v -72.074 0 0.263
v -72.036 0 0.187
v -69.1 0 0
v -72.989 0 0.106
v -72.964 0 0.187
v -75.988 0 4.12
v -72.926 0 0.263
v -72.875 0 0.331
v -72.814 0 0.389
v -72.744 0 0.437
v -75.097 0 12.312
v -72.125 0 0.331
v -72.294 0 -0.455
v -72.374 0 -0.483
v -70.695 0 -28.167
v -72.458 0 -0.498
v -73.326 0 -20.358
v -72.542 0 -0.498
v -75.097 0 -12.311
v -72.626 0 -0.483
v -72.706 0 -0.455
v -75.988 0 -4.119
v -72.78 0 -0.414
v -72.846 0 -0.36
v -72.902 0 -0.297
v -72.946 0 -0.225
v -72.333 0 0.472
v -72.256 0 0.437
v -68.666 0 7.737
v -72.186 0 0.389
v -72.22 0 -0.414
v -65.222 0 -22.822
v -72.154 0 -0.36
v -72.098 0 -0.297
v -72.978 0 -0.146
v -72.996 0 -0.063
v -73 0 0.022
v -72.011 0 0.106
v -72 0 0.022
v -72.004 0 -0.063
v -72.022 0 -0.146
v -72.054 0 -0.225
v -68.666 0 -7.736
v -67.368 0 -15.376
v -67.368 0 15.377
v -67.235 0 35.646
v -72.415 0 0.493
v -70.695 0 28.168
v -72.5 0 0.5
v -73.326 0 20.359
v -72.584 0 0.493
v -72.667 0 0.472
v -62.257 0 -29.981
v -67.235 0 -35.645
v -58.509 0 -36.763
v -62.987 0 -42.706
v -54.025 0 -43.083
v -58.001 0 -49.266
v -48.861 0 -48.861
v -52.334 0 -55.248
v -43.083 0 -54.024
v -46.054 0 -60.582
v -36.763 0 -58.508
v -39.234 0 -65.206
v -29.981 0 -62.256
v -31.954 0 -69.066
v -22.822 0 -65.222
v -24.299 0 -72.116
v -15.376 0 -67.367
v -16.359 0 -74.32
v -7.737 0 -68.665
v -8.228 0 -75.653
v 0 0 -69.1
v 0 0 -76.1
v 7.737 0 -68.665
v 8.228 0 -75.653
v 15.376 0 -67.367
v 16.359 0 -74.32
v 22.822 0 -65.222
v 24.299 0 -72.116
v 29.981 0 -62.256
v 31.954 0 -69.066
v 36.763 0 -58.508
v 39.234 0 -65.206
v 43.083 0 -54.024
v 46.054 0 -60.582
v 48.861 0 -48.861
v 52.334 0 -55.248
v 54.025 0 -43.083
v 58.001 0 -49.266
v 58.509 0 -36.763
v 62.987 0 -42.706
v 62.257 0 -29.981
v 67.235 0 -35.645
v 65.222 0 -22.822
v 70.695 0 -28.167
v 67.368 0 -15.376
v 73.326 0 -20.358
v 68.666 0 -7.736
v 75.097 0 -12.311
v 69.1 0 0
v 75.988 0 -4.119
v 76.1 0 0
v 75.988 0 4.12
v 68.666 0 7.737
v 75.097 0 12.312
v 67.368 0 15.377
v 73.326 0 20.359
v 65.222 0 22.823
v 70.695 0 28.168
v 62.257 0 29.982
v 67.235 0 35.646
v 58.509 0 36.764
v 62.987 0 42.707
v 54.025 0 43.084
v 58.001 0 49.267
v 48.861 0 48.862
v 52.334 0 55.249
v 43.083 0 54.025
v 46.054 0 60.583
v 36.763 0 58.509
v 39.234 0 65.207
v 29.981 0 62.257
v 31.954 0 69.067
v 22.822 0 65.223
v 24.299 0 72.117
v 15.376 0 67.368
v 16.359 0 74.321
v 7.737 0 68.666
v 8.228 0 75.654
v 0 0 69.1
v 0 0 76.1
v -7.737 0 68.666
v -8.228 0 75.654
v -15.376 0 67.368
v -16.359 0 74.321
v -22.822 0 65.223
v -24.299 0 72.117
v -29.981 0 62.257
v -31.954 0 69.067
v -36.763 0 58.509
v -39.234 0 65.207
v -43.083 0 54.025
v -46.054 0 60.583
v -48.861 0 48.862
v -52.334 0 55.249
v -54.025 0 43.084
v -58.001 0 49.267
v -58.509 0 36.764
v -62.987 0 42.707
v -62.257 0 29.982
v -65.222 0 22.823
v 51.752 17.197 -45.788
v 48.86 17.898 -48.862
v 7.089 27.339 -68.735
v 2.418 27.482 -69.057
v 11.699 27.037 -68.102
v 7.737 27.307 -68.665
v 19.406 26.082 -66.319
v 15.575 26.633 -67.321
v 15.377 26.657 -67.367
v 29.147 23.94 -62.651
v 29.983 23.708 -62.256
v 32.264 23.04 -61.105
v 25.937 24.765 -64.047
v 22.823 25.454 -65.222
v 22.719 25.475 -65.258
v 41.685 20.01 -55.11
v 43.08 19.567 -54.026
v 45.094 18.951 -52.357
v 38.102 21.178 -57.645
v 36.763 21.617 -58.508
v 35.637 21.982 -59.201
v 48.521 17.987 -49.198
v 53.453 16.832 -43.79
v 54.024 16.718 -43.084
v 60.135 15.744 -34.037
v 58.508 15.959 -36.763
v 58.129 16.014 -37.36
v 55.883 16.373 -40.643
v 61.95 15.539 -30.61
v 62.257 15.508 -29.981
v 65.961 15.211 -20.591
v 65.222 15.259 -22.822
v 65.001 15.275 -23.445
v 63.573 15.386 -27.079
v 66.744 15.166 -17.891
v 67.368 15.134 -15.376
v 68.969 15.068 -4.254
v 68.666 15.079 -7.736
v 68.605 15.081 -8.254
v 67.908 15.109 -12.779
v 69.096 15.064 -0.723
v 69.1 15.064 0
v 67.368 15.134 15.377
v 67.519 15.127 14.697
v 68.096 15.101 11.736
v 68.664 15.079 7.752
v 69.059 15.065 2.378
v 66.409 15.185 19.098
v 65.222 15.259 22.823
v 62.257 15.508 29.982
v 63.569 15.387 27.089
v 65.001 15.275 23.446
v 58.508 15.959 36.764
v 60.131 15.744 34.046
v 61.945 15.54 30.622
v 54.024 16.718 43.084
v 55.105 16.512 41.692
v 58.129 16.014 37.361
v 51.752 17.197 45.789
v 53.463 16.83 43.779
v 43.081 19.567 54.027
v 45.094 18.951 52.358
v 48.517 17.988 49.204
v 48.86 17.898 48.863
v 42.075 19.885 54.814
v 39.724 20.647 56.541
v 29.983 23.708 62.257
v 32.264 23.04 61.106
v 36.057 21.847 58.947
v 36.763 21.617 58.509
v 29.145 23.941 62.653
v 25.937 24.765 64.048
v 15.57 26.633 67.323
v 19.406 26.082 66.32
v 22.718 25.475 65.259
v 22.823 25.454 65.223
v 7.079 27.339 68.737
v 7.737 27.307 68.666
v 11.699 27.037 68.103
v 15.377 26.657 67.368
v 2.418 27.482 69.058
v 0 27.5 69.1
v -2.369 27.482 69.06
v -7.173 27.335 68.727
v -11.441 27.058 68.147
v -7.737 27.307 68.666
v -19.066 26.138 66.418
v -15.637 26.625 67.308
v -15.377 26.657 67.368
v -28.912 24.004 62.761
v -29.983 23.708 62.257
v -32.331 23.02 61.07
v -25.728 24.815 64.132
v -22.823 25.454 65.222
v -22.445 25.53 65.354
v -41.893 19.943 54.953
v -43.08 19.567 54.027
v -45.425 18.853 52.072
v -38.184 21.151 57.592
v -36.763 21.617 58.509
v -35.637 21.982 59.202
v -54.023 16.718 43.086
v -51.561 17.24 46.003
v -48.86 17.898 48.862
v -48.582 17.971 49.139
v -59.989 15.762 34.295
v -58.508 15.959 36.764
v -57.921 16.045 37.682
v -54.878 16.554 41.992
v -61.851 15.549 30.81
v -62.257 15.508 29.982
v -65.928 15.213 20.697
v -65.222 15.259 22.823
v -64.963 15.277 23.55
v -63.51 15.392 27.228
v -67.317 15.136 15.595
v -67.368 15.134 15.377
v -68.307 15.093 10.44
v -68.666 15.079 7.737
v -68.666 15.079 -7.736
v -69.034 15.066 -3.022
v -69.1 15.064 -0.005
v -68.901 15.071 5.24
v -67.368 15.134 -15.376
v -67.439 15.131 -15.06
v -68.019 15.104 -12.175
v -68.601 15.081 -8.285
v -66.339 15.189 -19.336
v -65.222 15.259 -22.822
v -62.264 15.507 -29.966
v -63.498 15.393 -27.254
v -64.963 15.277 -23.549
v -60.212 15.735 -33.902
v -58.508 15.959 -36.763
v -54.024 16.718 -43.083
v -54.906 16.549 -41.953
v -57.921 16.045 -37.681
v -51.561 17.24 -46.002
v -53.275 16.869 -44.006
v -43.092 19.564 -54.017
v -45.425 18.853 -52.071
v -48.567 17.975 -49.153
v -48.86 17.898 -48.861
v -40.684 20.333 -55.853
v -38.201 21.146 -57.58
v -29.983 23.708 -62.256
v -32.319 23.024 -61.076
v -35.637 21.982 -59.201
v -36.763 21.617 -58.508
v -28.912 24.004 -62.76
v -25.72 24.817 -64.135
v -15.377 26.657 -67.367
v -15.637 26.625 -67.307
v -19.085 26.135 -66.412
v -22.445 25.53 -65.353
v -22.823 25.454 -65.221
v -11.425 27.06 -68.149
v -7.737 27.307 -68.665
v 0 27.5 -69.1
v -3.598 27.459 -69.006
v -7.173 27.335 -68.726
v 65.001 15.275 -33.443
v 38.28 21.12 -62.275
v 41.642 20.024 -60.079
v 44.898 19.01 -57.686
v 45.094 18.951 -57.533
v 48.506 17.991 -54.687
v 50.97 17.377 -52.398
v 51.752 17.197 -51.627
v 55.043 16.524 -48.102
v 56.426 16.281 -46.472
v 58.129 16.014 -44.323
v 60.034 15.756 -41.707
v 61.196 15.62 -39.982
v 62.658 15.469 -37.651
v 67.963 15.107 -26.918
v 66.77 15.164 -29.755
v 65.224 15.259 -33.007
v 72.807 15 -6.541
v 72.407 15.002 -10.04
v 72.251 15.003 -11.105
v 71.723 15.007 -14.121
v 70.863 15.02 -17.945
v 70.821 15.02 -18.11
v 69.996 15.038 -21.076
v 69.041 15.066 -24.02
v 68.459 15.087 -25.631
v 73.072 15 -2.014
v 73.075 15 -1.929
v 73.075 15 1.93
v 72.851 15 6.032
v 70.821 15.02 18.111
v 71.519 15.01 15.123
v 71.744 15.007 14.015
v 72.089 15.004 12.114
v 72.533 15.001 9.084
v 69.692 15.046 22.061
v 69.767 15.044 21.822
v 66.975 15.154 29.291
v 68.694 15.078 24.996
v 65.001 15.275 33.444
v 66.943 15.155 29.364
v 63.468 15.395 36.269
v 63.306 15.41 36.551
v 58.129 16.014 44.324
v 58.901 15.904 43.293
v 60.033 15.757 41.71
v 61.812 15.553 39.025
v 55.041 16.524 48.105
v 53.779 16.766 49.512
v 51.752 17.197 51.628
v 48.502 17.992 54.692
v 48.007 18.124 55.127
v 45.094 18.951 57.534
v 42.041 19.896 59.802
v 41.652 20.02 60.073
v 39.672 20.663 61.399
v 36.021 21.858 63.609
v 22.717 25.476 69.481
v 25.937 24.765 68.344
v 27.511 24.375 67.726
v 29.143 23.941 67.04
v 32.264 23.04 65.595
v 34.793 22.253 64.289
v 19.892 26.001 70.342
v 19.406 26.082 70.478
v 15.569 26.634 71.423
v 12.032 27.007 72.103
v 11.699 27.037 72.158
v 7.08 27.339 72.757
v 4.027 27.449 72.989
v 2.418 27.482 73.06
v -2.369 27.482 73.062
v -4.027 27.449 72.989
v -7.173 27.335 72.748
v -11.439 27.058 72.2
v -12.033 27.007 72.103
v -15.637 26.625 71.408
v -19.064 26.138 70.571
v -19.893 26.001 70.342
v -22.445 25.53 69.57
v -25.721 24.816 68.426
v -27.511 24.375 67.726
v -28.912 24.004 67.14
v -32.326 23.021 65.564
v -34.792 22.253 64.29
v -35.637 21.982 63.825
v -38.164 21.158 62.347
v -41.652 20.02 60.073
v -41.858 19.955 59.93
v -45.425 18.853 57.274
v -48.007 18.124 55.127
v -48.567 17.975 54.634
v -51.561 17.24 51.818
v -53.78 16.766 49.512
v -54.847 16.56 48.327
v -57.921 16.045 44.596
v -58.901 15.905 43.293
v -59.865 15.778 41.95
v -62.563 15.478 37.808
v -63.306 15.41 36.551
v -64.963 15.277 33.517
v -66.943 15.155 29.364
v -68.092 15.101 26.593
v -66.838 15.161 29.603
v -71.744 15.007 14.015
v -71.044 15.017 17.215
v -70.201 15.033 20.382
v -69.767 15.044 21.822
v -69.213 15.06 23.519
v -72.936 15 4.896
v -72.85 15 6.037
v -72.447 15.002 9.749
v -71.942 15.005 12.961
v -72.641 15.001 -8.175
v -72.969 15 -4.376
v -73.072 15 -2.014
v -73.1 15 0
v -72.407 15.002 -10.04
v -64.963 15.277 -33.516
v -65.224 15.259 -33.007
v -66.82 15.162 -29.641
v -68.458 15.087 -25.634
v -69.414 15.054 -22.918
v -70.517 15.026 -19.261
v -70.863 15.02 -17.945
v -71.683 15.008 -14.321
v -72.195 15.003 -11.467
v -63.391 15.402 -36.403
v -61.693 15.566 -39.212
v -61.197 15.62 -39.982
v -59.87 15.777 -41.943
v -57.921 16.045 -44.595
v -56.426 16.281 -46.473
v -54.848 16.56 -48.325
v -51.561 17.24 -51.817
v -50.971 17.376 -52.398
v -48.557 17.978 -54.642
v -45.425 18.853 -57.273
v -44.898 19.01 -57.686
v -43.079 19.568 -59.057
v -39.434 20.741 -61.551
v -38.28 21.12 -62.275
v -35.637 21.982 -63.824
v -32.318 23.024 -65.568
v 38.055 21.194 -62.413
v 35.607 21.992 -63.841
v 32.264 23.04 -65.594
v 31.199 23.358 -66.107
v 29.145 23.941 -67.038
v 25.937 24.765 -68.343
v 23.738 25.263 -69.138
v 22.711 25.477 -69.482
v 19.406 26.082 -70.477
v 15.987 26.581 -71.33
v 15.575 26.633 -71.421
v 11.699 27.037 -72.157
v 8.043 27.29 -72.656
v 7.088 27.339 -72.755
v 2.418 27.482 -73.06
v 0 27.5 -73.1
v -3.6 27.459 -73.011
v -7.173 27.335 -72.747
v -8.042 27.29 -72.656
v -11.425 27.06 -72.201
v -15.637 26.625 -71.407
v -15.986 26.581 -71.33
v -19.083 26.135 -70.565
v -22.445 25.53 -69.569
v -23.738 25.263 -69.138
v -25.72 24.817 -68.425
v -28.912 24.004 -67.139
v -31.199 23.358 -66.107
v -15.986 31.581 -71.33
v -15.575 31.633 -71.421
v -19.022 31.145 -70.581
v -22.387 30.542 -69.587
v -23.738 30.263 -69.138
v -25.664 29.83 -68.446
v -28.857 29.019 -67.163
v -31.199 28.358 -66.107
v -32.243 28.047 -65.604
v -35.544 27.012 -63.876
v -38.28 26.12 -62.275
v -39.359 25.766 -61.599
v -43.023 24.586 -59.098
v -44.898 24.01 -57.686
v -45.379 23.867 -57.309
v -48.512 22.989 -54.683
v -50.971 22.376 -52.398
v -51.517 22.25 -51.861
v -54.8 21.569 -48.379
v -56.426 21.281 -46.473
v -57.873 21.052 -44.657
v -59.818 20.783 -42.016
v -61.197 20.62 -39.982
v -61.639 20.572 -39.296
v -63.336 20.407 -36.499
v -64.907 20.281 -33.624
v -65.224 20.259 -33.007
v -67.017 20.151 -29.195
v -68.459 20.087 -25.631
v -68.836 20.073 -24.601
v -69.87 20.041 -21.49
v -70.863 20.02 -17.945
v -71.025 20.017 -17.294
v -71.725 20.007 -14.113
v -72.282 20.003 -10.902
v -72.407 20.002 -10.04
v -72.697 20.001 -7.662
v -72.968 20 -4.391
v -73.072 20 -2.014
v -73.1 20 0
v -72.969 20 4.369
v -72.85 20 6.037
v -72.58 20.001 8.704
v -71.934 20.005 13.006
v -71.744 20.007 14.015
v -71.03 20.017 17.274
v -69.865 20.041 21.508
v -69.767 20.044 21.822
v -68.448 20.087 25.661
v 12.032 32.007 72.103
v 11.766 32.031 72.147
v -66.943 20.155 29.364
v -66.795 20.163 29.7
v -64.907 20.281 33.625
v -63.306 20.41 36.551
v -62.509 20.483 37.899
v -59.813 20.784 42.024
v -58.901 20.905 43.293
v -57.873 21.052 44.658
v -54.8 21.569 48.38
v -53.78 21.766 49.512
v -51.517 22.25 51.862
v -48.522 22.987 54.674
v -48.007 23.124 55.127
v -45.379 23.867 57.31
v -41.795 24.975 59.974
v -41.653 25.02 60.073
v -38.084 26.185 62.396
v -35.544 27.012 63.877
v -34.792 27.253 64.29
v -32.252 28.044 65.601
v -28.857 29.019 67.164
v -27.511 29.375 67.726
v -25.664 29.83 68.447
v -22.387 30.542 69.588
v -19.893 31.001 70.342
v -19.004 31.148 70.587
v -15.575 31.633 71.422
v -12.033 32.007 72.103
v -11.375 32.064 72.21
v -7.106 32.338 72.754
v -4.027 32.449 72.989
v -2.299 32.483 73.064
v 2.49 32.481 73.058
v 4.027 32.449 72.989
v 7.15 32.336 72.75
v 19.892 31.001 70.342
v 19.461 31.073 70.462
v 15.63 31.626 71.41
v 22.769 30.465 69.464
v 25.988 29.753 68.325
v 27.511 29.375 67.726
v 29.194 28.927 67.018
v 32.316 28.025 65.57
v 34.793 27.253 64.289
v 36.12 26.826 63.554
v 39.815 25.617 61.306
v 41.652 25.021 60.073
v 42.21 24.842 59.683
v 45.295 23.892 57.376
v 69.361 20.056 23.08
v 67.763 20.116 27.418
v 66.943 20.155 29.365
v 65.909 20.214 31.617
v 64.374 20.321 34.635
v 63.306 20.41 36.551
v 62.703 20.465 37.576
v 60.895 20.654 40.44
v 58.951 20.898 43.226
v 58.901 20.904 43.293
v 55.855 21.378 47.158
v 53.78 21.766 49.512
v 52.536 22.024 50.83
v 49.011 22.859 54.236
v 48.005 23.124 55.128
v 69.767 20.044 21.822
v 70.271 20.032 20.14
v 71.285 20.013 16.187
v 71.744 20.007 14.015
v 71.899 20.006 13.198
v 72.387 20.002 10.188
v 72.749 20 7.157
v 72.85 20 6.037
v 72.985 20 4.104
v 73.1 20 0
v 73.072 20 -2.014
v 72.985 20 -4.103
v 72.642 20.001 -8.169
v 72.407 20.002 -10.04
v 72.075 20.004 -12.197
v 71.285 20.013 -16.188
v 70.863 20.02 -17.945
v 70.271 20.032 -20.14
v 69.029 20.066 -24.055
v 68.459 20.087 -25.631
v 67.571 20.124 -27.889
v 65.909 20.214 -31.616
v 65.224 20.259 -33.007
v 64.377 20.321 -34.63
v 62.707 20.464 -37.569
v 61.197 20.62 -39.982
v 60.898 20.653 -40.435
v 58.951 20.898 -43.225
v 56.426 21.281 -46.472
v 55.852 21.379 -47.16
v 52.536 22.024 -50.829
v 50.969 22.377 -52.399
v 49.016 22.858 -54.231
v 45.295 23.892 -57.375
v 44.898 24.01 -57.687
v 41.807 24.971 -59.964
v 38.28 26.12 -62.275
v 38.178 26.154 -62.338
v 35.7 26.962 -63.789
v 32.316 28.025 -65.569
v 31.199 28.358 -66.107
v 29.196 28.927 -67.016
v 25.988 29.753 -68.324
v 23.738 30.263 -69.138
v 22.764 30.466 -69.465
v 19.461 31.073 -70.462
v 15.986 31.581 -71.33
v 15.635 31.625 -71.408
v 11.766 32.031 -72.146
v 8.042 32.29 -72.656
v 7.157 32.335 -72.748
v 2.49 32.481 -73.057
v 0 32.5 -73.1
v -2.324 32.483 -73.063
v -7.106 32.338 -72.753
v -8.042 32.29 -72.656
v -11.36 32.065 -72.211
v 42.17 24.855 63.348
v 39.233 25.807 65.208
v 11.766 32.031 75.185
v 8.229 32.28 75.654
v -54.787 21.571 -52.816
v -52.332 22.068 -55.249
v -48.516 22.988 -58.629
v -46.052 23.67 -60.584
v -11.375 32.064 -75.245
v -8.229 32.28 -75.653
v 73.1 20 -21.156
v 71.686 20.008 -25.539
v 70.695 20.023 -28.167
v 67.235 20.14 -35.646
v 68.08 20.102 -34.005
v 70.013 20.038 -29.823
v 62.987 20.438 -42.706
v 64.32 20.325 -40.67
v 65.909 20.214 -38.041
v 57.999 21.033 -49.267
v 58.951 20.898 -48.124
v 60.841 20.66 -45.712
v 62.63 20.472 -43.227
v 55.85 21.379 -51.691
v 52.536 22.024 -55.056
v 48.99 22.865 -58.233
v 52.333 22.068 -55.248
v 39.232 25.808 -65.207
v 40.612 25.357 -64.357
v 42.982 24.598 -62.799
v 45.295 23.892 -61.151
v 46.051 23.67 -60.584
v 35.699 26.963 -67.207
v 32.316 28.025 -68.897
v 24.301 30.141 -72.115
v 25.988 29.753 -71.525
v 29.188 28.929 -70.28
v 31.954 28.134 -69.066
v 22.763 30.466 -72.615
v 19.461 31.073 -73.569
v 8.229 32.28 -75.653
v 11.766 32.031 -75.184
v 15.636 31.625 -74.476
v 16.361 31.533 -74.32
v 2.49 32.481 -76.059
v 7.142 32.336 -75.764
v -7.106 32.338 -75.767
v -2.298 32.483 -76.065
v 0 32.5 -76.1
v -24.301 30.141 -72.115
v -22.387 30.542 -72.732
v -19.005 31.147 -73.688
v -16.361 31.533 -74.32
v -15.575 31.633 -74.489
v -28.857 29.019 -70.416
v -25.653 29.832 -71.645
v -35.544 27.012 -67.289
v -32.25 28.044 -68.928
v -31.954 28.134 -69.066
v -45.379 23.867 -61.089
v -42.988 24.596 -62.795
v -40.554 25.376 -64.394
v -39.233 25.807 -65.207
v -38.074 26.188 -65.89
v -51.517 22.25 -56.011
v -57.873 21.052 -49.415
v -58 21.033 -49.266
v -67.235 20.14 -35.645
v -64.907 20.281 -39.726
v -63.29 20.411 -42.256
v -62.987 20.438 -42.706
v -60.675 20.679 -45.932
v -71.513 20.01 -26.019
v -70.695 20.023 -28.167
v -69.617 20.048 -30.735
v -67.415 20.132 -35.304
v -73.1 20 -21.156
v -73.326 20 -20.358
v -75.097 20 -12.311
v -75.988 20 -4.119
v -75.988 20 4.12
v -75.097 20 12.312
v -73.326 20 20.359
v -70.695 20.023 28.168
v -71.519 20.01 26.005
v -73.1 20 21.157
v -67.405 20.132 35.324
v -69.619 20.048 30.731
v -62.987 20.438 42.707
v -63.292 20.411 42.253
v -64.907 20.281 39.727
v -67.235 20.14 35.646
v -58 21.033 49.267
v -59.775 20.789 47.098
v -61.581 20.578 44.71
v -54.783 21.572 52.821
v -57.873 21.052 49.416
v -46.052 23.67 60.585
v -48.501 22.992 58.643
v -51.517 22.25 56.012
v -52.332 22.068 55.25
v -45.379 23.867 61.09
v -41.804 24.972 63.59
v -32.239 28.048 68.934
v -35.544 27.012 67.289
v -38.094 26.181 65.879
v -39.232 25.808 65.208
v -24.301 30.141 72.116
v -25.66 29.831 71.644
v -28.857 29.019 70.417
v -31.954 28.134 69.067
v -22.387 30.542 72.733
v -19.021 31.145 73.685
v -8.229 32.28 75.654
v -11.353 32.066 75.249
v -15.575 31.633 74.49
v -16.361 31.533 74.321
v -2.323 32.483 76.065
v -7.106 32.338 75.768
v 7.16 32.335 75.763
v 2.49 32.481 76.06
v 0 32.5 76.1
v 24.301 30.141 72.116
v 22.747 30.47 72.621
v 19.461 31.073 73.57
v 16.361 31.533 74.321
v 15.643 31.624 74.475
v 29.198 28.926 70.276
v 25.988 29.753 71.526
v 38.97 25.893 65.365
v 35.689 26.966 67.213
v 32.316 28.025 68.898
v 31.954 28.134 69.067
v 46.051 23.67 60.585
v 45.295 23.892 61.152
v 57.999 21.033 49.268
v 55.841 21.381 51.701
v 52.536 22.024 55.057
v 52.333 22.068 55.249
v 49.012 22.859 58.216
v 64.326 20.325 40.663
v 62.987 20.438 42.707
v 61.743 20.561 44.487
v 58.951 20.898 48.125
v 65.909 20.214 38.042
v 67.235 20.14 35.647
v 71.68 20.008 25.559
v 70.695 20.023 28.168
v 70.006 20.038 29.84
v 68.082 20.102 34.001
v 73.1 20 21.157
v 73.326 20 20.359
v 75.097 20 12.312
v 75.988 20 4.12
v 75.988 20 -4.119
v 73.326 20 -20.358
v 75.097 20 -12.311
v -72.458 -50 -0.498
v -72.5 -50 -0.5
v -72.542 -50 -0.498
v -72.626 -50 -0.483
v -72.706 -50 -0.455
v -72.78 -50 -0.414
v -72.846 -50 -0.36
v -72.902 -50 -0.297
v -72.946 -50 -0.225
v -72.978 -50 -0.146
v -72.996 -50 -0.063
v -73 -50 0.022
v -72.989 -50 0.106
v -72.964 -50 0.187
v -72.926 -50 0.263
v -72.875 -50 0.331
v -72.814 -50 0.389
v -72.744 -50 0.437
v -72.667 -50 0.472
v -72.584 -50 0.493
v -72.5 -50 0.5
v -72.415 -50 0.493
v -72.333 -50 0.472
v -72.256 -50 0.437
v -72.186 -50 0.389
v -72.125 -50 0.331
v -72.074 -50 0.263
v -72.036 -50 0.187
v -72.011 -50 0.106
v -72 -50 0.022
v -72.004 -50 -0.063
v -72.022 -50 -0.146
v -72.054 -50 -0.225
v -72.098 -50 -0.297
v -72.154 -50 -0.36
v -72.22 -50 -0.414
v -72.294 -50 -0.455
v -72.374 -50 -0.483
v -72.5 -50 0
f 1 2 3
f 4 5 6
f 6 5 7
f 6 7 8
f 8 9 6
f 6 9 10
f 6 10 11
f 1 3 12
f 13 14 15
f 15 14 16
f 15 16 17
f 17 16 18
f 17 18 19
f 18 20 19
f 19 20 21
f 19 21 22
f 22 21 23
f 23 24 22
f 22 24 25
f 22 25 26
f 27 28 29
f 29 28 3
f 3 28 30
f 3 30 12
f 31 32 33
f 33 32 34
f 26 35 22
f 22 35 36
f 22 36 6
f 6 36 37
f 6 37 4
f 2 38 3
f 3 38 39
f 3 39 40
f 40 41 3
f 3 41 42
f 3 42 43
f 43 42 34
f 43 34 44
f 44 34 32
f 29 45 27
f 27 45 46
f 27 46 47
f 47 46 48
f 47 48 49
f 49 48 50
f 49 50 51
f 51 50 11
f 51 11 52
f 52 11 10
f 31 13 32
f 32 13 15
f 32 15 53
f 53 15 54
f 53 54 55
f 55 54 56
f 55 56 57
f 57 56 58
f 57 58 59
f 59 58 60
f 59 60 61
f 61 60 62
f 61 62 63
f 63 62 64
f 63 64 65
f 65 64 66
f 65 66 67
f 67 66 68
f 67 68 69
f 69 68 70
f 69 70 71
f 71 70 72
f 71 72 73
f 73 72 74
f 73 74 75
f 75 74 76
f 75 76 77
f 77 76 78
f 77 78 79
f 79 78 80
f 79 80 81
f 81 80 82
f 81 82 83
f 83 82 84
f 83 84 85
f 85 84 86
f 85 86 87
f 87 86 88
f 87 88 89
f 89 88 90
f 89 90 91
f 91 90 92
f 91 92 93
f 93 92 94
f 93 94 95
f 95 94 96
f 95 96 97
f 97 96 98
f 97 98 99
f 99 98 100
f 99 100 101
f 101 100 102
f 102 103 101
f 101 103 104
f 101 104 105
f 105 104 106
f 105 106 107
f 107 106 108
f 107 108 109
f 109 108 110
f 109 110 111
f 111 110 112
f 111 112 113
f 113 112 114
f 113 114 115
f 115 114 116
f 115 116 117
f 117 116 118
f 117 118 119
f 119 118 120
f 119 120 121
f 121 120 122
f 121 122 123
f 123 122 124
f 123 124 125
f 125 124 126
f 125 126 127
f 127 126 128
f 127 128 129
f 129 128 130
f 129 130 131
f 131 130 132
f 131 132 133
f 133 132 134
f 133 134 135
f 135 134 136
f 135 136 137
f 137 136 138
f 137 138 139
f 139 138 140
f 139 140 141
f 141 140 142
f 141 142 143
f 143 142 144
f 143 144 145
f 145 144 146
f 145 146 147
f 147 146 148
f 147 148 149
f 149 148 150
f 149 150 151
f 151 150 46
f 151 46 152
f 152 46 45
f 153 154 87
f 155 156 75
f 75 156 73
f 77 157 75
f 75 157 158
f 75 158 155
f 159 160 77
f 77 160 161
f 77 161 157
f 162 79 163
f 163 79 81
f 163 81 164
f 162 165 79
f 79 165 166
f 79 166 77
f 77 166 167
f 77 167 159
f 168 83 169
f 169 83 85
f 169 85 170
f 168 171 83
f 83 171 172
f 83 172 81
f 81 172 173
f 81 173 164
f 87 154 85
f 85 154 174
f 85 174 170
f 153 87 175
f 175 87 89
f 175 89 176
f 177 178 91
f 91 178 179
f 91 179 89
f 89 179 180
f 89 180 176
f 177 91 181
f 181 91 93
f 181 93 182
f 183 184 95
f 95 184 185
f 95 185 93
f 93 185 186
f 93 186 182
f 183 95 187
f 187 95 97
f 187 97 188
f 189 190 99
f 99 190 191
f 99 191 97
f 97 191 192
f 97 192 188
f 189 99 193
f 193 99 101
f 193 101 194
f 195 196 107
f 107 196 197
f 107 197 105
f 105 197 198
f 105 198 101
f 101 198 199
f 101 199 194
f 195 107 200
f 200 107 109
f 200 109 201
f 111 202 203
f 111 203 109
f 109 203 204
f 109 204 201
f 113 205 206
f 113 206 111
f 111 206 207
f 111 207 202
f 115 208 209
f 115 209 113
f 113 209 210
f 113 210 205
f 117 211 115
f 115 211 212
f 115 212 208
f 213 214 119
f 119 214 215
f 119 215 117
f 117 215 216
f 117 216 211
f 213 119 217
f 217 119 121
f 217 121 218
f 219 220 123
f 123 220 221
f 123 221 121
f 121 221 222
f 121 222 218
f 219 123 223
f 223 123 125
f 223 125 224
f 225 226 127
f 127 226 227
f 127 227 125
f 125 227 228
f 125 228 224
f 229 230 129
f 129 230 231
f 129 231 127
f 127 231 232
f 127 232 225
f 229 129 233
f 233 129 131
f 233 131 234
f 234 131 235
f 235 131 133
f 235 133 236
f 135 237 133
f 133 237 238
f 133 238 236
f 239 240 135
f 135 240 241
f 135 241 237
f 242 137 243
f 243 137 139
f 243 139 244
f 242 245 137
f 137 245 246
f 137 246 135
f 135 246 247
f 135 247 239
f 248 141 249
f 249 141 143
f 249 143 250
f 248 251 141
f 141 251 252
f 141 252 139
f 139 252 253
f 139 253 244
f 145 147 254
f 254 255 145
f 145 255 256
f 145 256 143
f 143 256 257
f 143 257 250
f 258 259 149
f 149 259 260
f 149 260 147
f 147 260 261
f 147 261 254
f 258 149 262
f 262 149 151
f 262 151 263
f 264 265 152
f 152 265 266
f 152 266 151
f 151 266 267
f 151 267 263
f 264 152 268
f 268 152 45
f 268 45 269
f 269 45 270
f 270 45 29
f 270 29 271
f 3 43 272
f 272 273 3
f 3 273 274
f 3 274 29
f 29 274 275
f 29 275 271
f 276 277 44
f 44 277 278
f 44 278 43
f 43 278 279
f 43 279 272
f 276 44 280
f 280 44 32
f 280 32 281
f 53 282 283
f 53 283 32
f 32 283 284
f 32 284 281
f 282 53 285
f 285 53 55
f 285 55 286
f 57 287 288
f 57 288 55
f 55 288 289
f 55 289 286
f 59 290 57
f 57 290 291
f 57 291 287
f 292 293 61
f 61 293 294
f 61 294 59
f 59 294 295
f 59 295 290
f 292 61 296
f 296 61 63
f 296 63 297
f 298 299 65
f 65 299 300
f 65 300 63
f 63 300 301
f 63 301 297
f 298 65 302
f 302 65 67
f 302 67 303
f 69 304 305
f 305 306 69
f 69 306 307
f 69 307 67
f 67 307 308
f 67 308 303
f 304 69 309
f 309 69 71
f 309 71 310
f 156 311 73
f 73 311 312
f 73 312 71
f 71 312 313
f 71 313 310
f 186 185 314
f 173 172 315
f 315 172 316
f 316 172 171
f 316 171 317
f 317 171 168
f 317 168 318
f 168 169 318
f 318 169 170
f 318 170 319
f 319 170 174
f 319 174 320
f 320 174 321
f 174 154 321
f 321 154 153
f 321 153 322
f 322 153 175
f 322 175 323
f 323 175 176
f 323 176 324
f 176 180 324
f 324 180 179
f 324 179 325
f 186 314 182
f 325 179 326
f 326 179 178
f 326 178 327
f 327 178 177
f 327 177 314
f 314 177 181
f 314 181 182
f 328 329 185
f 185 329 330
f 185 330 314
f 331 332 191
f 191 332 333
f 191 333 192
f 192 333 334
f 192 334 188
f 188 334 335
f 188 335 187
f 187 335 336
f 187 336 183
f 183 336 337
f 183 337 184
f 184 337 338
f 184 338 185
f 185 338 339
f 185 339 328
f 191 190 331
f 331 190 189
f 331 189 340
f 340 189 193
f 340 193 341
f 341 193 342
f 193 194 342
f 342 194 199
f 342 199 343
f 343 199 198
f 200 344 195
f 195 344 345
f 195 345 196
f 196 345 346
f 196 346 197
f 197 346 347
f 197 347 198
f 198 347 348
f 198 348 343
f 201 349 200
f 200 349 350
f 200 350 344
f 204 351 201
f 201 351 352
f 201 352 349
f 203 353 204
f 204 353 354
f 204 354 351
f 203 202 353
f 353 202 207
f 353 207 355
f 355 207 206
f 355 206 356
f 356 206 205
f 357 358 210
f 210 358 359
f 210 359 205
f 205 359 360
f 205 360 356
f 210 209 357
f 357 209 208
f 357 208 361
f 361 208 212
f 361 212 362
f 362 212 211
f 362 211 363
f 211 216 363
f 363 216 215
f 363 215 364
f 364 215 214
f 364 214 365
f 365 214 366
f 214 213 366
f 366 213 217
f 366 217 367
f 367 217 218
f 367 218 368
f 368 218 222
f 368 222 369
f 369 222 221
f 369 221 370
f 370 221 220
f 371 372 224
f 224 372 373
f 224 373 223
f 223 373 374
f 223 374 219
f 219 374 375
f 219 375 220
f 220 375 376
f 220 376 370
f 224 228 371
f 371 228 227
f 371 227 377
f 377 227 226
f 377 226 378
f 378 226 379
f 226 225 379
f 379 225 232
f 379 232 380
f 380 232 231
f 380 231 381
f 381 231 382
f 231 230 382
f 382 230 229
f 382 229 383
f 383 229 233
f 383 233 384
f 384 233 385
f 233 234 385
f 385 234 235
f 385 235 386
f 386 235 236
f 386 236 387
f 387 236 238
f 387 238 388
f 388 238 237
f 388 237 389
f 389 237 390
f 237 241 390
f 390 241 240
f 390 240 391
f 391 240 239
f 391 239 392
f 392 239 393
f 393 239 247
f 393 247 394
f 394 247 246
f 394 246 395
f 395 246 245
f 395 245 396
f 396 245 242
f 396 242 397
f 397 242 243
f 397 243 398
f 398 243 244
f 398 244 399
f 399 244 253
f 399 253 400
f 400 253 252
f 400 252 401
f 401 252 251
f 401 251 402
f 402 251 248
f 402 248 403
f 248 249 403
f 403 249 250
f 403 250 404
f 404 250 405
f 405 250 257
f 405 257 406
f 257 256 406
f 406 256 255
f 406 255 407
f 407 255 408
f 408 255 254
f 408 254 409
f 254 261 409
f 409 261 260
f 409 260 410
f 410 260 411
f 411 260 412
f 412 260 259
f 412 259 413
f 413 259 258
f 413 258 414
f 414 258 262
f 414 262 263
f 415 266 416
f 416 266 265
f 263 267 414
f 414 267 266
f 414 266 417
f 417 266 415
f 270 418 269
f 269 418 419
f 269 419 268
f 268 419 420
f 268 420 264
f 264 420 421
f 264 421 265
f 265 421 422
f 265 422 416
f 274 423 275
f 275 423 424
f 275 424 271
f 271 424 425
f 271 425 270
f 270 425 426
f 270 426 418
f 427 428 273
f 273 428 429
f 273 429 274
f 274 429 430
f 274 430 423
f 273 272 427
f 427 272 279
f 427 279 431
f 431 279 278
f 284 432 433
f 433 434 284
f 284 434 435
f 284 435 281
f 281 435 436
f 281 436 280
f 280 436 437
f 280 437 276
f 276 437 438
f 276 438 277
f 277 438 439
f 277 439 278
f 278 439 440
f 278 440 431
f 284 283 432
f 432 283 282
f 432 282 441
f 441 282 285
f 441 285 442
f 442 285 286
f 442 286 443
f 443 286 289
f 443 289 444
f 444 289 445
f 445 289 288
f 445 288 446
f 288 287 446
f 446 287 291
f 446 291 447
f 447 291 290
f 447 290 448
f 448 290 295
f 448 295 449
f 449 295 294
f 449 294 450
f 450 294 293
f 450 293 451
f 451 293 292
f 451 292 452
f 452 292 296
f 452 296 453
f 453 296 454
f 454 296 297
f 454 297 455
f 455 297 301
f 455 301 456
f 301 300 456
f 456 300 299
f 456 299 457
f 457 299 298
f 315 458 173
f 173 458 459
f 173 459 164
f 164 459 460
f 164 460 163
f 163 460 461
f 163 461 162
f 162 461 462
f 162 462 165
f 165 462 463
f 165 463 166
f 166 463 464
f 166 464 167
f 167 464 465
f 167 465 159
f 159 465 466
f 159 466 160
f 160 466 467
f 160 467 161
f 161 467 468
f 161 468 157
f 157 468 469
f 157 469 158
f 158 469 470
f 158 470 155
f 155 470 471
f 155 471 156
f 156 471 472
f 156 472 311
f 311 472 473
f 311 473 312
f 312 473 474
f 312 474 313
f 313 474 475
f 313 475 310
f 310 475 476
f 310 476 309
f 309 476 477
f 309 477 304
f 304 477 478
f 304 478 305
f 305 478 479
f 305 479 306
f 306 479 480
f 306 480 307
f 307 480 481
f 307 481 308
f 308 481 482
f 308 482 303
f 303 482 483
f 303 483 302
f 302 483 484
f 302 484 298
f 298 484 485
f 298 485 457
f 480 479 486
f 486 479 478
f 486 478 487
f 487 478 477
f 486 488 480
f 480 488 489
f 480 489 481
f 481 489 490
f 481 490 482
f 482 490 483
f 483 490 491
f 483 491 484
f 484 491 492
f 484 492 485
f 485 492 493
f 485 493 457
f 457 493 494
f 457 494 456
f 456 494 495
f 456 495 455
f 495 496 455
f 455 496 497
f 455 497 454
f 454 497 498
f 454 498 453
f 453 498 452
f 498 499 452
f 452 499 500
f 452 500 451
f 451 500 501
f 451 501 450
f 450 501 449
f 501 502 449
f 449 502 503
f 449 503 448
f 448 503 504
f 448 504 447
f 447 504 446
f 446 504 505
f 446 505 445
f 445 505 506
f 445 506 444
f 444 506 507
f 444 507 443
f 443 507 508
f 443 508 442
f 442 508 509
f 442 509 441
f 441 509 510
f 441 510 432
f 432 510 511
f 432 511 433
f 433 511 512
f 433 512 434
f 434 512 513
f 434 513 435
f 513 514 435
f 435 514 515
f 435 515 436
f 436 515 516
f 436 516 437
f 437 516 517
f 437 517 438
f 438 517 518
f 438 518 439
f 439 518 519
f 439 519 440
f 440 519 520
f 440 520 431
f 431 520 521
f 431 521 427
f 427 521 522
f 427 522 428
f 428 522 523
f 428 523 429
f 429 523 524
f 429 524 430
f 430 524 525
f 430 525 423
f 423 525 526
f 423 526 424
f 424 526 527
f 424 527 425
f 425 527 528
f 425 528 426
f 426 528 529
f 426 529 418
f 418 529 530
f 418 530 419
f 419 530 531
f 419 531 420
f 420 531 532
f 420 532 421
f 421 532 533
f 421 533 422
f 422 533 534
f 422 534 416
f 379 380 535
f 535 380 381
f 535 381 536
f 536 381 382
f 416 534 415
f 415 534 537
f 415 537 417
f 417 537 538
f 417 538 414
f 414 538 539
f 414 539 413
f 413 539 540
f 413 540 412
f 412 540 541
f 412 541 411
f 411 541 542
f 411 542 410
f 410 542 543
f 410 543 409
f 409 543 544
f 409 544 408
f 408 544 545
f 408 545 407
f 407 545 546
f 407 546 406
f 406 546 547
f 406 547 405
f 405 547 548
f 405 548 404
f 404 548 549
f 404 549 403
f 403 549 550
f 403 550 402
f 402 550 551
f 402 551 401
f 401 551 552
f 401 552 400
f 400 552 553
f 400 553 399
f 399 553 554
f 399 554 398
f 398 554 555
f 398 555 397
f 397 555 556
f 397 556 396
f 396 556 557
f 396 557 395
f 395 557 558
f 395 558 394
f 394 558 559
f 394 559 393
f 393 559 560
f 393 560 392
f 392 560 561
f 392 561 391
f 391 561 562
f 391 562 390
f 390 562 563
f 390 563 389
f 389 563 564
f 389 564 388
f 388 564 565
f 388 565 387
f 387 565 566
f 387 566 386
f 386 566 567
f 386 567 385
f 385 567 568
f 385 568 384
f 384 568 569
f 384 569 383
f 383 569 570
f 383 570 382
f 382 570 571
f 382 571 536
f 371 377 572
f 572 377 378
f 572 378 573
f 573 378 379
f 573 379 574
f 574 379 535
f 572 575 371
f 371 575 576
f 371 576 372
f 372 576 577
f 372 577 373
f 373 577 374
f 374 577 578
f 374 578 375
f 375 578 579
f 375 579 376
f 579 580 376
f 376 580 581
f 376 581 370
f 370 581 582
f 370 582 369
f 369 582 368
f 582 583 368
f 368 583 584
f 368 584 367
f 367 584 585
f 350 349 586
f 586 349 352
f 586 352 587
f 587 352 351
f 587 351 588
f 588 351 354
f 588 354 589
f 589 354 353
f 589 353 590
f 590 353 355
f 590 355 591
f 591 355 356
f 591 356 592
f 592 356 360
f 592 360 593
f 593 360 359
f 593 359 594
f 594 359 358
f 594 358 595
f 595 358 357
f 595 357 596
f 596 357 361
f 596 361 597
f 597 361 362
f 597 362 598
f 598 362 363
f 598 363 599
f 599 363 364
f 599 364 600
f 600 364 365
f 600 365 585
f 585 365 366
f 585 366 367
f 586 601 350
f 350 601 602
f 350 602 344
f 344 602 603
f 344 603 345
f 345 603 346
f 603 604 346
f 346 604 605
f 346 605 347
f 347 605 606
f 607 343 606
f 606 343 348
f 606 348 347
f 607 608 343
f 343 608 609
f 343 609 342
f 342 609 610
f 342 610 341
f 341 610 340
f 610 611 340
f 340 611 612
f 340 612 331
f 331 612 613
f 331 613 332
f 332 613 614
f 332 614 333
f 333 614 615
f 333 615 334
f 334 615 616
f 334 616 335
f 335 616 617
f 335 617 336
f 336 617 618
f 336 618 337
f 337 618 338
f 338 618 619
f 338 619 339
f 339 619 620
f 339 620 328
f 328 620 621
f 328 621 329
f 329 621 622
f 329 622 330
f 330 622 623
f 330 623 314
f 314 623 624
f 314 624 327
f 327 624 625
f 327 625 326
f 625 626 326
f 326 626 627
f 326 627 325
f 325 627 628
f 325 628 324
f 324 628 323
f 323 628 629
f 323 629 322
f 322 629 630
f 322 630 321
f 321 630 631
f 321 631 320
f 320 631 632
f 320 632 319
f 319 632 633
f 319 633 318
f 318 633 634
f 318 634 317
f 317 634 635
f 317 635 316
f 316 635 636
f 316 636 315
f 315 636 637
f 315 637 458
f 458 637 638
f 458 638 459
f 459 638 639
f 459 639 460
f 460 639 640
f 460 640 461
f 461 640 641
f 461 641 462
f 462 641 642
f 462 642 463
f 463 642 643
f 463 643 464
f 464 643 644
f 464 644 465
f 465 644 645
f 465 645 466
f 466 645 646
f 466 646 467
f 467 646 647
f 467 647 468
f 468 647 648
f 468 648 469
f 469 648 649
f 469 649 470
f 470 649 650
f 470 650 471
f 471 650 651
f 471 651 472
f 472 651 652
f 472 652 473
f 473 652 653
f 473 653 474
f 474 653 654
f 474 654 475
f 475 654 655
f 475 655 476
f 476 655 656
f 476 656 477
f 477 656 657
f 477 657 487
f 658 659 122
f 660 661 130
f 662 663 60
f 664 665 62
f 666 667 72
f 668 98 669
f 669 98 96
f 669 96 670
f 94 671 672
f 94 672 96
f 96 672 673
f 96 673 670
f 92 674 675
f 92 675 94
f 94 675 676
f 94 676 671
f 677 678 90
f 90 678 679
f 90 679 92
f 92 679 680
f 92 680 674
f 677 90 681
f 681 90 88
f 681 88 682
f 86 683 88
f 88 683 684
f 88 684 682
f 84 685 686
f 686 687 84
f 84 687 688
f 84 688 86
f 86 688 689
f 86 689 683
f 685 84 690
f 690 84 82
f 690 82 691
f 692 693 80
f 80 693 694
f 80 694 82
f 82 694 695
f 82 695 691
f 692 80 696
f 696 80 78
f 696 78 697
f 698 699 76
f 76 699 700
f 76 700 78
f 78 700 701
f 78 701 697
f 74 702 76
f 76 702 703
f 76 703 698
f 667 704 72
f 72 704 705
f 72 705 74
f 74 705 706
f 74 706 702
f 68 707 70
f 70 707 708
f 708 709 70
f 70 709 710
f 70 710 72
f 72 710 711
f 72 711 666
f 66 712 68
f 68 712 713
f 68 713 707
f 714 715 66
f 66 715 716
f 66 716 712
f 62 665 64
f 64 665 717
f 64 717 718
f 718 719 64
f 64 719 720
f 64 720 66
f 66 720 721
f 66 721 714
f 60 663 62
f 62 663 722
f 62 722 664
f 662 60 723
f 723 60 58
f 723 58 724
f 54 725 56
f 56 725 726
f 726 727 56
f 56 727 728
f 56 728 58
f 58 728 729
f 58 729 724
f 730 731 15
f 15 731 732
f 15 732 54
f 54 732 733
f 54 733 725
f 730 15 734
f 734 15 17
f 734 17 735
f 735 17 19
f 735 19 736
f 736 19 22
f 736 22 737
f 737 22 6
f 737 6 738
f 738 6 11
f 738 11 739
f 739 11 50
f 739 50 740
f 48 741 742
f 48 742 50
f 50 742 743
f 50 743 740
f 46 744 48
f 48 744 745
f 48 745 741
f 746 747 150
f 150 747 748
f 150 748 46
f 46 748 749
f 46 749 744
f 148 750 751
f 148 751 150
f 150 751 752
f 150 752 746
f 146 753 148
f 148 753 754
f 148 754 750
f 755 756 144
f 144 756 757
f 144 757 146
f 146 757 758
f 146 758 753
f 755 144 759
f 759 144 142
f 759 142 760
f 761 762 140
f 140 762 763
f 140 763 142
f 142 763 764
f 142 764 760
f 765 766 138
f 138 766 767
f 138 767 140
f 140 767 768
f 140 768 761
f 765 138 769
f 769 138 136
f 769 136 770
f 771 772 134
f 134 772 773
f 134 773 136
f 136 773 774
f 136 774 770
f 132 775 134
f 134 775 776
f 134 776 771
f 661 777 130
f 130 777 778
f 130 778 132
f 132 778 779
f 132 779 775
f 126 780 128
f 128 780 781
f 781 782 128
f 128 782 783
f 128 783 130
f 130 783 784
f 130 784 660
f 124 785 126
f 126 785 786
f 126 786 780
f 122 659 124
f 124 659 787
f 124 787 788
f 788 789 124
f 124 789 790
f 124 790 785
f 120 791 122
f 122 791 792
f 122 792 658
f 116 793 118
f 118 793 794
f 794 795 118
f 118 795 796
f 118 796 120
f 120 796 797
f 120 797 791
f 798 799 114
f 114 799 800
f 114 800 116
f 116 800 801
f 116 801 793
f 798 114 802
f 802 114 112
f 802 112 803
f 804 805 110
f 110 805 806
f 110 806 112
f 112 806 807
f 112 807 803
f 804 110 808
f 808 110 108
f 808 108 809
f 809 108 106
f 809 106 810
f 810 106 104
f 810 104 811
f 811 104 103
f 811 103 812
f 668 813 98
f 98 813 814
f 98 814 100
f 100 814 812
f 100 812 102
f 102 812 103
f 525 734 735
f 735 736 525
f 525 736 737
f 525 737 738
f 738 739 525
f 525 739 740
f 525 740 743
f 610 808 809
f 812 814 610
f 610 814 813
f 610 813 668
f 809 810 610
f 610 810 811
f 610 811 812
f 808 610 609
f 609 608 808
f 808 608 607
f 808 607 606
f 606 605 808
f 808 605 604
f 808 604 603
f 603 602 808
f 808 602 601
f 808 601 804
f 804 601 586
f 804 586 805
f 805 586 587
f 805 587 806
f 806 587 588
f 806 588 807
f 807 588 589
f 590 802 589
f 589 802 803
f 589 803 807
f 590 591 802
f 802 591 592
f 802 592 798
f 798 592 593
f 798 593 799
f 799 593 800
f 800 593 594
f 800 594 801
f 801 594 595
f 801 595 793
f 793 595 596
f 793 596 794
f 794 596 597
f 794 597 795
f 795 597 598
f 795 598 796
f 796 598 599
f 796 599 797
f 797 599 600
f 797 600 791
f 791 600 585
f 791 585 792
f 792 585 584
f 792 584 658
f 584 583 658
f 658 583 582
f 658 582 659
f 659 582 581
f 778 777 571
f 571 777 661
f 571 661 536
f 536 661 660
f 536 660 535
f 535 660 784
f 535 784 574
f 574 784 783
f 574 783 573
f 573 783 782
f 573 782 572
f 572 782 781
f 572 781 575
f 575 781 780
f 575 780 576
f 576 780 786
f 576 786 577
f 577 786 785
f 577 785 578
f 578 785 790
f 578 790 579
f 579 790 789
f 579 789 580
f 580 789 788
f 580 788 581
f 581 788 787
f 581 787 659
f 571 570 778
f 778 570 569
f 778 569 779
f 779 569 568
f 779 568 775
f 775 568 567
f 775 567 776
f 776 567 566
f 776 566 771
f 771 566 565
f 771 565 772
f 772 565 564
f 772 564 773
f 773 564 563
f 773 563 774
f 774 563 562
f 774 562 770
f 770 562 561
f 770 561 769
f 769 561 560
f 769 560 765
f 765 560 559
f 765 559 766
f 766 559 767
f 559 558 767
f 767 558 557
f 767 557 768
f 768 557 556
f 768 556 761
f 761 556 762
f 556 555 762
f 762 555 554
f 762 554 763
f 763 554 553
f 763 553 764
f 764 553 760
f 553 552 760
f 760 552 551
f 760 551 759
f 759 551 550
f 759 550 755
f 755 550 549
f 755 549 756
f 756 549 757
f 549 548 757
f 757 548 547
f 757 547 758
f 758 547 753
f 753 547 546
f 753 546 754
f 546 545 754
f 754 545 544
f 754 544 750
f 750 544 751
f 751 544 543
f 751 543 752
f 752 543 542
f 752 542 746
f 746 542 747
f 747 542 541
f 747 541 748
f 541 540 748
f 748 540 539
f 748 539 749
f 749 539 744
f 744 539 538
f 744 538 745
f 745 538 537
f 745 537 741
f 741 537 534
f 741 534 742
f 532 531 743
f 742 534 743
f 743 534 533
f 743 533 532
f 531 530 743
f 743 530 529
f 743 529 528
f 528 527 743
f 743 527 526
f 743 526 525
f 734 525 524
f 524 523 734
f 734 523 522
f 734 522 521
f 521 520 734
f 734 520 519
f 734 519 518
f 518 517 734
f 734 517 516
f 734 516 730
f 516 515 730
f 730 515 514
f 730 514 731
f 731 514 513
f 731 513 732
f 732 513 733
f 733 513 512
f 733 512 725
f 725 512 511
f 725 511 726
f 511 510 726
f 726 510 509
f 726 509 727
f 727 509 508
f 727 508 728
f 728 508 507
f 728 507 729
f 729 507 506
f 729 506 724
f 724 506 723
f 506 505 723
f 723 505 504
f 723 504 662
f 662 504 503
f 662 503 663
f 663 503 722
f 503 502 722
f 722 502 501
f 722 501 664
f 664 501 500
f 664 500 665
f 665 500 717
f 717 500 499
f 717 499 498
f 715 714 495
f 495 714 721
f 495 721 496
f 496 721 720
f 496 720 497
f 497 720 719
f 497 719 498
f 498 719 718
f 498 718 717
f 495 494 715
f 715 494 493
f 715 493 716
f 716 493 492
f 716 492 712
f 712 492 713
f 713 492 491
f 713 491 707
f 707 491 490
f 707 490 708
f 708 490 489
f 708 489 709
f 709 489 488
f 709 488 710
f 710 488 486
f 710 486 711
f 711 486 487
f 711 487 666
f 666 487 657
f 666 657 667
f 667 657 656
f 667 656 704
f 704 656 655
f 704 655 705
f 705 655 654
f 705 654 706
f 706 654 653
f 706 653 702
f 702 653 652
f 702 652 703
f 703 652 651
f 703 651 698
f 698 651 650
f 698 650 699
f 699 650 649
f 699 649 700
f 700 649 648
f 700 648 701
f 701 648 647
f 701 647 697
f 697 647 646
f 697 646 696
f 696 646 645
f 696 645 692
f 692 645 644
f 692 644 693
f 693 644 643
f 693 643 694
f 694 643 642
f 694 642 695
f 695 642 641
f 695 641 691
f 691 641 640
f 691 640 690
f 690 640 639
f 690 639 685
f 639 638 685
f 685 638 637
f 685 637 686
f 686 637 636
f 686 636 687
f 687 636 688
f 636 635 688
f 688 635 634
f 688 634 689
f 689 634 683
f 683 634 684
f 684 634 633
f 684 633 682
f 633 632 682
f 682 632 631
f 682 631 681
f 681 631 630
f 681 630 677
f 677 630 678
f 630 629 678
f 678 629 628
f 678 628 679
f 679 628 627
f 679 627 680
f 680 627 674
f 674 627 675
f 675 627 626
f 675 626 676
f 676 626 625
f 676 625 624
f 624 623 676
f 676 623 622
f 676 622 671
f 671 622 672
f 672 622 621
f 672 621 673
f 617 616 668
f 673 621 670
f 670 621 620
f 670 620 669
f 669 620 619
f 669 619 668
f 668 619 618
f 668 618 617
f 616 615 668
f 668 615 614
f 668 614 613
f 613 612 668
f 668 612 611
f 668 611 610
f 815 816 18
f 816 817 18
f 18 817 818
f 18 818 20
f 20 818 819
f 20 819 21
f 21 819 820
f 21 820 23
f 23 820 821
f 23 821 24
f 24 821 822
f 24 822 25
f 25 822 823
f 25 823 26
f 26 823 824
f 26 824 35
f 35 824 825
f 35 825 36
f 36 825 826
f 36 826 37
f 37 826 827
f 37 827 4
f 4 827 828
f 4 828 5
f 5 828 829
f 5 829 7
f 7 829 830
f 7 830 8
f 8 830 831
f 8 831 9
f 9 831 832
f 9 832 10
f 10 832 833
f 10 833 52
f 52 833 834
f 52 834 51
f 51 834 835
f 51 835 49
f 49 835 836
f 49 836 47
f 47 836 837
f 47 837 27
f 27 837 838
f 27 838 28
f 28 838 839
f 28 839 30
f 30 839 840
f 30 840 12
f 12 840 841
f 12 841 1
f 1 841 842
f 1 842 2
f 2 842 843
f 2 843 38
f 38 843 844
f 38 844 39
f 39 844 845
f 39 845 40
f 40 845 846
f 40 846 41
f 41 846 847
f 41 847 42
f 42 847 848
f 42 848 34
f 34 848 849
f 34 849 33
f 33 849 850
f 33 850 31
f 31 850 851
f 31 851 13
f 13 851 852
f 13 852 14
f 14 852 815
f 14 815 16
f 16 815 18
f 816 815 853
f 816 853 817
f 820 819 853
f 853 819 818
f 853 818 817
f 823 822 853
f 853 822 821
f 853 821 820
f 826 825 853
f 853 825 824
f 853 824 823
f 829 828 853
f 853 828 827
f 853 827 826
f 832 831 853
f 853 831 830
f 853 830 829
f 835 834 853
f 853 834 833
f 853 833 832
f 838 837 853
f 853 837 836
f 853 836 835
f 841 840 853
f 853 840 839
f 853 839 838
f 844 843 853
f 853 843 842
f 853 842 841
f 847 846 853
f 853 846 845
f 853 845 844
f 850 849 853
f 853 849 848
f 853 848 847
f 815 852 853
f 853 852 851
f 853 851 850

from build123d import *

# Parameters (mm, degrees)
SKETCH1_R           = 73.1
SKETCH1_R_2         = 69.1
EXTRUDE_THIN1_DEPTH = 30
CUT_EXTRUDE1_DEPTH  = 75
SKETCH3_R           = 76.1
SKETCH3_R_2         = 73.1
EXTRUDE_THIN2_DEPTH = 50
CUT_EXTRUDE2_DEPTH  = 77.5
SKETCH5_R           = 0.5
BOSS_EXTRUDE1_DEPTH = 50


with BuildPart() as part:
    # Sketch1 → Extrude-Thin1 (new body)
    with BuildSketch(Plane(origin=(0, 0, 0), x_dir=(1, 0, 0), z_dir=(0, 1, 0))):
        Circle(SKETCH1_R)
        Circle(SKETCH1_R_2, mode=Mode.SUBTRACT)
    extrude(amount=EXTRUDE_THIN1_DEPTH)

    # Sketch2 → Cut-Extrude1 (cut, symmetric)
    with BuildSketch(Plane.XY):
        with BuildLine():
            Line((-73.1, 15), (-73.1, 30))
            Line((-73.1, 30), (0, 30))
            Line((0, 30), (73.1, 30))
            Line((73.1, 30), (73.1, 15))
            add(Edge.make_bspline(
                [(-73.1, 15), (-43.1, 15), (-36.023333333, 27.604166667), (36.023333333, 27.604166667), (43.1, 15), (73.1, 15)],
                knots=[0, 0, 0, 0, 0.45, 0.55, 1, 1, 1, 1], degree=3))
        make_face()
    extrude(amount=CUT_EXTRUDE1_DEPTH, both=True, mode=Mode.SUBTRACT)

    # Sketch3 → Extrude-Thin2 (add)
    with BuildSketch(Plane(origin=(0, 0, 0), x_dir=(1, 0, 0), z_dir=(0, 1, 0))):
        Circle(SKETCH3_R)
        Circle(SKETCH3_R_2, mode=Mode.SUBTRACT)
    extrude(amount=EXTRUDE_THIN2_DEPTH)

    # Sketch4 → Cut-Extrude2 (cut, symmetric)
    with BuildSketch(Plane.XY):
        with BuildLine():
            Line((-73.1, 20), (-76.1, 20))
            Line((-76.1, 20), (-76.1, 50))
            Line((-76.1, 50), (76.1, 50))
            Line((76.1, 50), (76.1, 20))
            Line((76.1, 20), (73.1, 20))
            add(Edge.make_bspline(
                [(-73.1, 20), (-43.1, 20), (-36.023333333, 32.604166667), (36.023333333, 32.604166667), (43.1, 20), (73.1, 20)],
                knots=[0, 0, 0, 0, 0.45, 0.55, 1, 1, 1, 1], degree=3))
        make_face()
    extrude(amount=CUT_EXTRUDE2_DEPTH, both=True, mode=Mode.SUBTRACT)

    # Sketch5 → Boss-Extrude1 (add)
    with BuildSketch(Plane.XZ):
        with Locations((-72.5, 0)):
            Circle(SKETCH5_R)
    extrude(amount=BOSS_EXTRUDE1_DEPTH)


solid = part.part
